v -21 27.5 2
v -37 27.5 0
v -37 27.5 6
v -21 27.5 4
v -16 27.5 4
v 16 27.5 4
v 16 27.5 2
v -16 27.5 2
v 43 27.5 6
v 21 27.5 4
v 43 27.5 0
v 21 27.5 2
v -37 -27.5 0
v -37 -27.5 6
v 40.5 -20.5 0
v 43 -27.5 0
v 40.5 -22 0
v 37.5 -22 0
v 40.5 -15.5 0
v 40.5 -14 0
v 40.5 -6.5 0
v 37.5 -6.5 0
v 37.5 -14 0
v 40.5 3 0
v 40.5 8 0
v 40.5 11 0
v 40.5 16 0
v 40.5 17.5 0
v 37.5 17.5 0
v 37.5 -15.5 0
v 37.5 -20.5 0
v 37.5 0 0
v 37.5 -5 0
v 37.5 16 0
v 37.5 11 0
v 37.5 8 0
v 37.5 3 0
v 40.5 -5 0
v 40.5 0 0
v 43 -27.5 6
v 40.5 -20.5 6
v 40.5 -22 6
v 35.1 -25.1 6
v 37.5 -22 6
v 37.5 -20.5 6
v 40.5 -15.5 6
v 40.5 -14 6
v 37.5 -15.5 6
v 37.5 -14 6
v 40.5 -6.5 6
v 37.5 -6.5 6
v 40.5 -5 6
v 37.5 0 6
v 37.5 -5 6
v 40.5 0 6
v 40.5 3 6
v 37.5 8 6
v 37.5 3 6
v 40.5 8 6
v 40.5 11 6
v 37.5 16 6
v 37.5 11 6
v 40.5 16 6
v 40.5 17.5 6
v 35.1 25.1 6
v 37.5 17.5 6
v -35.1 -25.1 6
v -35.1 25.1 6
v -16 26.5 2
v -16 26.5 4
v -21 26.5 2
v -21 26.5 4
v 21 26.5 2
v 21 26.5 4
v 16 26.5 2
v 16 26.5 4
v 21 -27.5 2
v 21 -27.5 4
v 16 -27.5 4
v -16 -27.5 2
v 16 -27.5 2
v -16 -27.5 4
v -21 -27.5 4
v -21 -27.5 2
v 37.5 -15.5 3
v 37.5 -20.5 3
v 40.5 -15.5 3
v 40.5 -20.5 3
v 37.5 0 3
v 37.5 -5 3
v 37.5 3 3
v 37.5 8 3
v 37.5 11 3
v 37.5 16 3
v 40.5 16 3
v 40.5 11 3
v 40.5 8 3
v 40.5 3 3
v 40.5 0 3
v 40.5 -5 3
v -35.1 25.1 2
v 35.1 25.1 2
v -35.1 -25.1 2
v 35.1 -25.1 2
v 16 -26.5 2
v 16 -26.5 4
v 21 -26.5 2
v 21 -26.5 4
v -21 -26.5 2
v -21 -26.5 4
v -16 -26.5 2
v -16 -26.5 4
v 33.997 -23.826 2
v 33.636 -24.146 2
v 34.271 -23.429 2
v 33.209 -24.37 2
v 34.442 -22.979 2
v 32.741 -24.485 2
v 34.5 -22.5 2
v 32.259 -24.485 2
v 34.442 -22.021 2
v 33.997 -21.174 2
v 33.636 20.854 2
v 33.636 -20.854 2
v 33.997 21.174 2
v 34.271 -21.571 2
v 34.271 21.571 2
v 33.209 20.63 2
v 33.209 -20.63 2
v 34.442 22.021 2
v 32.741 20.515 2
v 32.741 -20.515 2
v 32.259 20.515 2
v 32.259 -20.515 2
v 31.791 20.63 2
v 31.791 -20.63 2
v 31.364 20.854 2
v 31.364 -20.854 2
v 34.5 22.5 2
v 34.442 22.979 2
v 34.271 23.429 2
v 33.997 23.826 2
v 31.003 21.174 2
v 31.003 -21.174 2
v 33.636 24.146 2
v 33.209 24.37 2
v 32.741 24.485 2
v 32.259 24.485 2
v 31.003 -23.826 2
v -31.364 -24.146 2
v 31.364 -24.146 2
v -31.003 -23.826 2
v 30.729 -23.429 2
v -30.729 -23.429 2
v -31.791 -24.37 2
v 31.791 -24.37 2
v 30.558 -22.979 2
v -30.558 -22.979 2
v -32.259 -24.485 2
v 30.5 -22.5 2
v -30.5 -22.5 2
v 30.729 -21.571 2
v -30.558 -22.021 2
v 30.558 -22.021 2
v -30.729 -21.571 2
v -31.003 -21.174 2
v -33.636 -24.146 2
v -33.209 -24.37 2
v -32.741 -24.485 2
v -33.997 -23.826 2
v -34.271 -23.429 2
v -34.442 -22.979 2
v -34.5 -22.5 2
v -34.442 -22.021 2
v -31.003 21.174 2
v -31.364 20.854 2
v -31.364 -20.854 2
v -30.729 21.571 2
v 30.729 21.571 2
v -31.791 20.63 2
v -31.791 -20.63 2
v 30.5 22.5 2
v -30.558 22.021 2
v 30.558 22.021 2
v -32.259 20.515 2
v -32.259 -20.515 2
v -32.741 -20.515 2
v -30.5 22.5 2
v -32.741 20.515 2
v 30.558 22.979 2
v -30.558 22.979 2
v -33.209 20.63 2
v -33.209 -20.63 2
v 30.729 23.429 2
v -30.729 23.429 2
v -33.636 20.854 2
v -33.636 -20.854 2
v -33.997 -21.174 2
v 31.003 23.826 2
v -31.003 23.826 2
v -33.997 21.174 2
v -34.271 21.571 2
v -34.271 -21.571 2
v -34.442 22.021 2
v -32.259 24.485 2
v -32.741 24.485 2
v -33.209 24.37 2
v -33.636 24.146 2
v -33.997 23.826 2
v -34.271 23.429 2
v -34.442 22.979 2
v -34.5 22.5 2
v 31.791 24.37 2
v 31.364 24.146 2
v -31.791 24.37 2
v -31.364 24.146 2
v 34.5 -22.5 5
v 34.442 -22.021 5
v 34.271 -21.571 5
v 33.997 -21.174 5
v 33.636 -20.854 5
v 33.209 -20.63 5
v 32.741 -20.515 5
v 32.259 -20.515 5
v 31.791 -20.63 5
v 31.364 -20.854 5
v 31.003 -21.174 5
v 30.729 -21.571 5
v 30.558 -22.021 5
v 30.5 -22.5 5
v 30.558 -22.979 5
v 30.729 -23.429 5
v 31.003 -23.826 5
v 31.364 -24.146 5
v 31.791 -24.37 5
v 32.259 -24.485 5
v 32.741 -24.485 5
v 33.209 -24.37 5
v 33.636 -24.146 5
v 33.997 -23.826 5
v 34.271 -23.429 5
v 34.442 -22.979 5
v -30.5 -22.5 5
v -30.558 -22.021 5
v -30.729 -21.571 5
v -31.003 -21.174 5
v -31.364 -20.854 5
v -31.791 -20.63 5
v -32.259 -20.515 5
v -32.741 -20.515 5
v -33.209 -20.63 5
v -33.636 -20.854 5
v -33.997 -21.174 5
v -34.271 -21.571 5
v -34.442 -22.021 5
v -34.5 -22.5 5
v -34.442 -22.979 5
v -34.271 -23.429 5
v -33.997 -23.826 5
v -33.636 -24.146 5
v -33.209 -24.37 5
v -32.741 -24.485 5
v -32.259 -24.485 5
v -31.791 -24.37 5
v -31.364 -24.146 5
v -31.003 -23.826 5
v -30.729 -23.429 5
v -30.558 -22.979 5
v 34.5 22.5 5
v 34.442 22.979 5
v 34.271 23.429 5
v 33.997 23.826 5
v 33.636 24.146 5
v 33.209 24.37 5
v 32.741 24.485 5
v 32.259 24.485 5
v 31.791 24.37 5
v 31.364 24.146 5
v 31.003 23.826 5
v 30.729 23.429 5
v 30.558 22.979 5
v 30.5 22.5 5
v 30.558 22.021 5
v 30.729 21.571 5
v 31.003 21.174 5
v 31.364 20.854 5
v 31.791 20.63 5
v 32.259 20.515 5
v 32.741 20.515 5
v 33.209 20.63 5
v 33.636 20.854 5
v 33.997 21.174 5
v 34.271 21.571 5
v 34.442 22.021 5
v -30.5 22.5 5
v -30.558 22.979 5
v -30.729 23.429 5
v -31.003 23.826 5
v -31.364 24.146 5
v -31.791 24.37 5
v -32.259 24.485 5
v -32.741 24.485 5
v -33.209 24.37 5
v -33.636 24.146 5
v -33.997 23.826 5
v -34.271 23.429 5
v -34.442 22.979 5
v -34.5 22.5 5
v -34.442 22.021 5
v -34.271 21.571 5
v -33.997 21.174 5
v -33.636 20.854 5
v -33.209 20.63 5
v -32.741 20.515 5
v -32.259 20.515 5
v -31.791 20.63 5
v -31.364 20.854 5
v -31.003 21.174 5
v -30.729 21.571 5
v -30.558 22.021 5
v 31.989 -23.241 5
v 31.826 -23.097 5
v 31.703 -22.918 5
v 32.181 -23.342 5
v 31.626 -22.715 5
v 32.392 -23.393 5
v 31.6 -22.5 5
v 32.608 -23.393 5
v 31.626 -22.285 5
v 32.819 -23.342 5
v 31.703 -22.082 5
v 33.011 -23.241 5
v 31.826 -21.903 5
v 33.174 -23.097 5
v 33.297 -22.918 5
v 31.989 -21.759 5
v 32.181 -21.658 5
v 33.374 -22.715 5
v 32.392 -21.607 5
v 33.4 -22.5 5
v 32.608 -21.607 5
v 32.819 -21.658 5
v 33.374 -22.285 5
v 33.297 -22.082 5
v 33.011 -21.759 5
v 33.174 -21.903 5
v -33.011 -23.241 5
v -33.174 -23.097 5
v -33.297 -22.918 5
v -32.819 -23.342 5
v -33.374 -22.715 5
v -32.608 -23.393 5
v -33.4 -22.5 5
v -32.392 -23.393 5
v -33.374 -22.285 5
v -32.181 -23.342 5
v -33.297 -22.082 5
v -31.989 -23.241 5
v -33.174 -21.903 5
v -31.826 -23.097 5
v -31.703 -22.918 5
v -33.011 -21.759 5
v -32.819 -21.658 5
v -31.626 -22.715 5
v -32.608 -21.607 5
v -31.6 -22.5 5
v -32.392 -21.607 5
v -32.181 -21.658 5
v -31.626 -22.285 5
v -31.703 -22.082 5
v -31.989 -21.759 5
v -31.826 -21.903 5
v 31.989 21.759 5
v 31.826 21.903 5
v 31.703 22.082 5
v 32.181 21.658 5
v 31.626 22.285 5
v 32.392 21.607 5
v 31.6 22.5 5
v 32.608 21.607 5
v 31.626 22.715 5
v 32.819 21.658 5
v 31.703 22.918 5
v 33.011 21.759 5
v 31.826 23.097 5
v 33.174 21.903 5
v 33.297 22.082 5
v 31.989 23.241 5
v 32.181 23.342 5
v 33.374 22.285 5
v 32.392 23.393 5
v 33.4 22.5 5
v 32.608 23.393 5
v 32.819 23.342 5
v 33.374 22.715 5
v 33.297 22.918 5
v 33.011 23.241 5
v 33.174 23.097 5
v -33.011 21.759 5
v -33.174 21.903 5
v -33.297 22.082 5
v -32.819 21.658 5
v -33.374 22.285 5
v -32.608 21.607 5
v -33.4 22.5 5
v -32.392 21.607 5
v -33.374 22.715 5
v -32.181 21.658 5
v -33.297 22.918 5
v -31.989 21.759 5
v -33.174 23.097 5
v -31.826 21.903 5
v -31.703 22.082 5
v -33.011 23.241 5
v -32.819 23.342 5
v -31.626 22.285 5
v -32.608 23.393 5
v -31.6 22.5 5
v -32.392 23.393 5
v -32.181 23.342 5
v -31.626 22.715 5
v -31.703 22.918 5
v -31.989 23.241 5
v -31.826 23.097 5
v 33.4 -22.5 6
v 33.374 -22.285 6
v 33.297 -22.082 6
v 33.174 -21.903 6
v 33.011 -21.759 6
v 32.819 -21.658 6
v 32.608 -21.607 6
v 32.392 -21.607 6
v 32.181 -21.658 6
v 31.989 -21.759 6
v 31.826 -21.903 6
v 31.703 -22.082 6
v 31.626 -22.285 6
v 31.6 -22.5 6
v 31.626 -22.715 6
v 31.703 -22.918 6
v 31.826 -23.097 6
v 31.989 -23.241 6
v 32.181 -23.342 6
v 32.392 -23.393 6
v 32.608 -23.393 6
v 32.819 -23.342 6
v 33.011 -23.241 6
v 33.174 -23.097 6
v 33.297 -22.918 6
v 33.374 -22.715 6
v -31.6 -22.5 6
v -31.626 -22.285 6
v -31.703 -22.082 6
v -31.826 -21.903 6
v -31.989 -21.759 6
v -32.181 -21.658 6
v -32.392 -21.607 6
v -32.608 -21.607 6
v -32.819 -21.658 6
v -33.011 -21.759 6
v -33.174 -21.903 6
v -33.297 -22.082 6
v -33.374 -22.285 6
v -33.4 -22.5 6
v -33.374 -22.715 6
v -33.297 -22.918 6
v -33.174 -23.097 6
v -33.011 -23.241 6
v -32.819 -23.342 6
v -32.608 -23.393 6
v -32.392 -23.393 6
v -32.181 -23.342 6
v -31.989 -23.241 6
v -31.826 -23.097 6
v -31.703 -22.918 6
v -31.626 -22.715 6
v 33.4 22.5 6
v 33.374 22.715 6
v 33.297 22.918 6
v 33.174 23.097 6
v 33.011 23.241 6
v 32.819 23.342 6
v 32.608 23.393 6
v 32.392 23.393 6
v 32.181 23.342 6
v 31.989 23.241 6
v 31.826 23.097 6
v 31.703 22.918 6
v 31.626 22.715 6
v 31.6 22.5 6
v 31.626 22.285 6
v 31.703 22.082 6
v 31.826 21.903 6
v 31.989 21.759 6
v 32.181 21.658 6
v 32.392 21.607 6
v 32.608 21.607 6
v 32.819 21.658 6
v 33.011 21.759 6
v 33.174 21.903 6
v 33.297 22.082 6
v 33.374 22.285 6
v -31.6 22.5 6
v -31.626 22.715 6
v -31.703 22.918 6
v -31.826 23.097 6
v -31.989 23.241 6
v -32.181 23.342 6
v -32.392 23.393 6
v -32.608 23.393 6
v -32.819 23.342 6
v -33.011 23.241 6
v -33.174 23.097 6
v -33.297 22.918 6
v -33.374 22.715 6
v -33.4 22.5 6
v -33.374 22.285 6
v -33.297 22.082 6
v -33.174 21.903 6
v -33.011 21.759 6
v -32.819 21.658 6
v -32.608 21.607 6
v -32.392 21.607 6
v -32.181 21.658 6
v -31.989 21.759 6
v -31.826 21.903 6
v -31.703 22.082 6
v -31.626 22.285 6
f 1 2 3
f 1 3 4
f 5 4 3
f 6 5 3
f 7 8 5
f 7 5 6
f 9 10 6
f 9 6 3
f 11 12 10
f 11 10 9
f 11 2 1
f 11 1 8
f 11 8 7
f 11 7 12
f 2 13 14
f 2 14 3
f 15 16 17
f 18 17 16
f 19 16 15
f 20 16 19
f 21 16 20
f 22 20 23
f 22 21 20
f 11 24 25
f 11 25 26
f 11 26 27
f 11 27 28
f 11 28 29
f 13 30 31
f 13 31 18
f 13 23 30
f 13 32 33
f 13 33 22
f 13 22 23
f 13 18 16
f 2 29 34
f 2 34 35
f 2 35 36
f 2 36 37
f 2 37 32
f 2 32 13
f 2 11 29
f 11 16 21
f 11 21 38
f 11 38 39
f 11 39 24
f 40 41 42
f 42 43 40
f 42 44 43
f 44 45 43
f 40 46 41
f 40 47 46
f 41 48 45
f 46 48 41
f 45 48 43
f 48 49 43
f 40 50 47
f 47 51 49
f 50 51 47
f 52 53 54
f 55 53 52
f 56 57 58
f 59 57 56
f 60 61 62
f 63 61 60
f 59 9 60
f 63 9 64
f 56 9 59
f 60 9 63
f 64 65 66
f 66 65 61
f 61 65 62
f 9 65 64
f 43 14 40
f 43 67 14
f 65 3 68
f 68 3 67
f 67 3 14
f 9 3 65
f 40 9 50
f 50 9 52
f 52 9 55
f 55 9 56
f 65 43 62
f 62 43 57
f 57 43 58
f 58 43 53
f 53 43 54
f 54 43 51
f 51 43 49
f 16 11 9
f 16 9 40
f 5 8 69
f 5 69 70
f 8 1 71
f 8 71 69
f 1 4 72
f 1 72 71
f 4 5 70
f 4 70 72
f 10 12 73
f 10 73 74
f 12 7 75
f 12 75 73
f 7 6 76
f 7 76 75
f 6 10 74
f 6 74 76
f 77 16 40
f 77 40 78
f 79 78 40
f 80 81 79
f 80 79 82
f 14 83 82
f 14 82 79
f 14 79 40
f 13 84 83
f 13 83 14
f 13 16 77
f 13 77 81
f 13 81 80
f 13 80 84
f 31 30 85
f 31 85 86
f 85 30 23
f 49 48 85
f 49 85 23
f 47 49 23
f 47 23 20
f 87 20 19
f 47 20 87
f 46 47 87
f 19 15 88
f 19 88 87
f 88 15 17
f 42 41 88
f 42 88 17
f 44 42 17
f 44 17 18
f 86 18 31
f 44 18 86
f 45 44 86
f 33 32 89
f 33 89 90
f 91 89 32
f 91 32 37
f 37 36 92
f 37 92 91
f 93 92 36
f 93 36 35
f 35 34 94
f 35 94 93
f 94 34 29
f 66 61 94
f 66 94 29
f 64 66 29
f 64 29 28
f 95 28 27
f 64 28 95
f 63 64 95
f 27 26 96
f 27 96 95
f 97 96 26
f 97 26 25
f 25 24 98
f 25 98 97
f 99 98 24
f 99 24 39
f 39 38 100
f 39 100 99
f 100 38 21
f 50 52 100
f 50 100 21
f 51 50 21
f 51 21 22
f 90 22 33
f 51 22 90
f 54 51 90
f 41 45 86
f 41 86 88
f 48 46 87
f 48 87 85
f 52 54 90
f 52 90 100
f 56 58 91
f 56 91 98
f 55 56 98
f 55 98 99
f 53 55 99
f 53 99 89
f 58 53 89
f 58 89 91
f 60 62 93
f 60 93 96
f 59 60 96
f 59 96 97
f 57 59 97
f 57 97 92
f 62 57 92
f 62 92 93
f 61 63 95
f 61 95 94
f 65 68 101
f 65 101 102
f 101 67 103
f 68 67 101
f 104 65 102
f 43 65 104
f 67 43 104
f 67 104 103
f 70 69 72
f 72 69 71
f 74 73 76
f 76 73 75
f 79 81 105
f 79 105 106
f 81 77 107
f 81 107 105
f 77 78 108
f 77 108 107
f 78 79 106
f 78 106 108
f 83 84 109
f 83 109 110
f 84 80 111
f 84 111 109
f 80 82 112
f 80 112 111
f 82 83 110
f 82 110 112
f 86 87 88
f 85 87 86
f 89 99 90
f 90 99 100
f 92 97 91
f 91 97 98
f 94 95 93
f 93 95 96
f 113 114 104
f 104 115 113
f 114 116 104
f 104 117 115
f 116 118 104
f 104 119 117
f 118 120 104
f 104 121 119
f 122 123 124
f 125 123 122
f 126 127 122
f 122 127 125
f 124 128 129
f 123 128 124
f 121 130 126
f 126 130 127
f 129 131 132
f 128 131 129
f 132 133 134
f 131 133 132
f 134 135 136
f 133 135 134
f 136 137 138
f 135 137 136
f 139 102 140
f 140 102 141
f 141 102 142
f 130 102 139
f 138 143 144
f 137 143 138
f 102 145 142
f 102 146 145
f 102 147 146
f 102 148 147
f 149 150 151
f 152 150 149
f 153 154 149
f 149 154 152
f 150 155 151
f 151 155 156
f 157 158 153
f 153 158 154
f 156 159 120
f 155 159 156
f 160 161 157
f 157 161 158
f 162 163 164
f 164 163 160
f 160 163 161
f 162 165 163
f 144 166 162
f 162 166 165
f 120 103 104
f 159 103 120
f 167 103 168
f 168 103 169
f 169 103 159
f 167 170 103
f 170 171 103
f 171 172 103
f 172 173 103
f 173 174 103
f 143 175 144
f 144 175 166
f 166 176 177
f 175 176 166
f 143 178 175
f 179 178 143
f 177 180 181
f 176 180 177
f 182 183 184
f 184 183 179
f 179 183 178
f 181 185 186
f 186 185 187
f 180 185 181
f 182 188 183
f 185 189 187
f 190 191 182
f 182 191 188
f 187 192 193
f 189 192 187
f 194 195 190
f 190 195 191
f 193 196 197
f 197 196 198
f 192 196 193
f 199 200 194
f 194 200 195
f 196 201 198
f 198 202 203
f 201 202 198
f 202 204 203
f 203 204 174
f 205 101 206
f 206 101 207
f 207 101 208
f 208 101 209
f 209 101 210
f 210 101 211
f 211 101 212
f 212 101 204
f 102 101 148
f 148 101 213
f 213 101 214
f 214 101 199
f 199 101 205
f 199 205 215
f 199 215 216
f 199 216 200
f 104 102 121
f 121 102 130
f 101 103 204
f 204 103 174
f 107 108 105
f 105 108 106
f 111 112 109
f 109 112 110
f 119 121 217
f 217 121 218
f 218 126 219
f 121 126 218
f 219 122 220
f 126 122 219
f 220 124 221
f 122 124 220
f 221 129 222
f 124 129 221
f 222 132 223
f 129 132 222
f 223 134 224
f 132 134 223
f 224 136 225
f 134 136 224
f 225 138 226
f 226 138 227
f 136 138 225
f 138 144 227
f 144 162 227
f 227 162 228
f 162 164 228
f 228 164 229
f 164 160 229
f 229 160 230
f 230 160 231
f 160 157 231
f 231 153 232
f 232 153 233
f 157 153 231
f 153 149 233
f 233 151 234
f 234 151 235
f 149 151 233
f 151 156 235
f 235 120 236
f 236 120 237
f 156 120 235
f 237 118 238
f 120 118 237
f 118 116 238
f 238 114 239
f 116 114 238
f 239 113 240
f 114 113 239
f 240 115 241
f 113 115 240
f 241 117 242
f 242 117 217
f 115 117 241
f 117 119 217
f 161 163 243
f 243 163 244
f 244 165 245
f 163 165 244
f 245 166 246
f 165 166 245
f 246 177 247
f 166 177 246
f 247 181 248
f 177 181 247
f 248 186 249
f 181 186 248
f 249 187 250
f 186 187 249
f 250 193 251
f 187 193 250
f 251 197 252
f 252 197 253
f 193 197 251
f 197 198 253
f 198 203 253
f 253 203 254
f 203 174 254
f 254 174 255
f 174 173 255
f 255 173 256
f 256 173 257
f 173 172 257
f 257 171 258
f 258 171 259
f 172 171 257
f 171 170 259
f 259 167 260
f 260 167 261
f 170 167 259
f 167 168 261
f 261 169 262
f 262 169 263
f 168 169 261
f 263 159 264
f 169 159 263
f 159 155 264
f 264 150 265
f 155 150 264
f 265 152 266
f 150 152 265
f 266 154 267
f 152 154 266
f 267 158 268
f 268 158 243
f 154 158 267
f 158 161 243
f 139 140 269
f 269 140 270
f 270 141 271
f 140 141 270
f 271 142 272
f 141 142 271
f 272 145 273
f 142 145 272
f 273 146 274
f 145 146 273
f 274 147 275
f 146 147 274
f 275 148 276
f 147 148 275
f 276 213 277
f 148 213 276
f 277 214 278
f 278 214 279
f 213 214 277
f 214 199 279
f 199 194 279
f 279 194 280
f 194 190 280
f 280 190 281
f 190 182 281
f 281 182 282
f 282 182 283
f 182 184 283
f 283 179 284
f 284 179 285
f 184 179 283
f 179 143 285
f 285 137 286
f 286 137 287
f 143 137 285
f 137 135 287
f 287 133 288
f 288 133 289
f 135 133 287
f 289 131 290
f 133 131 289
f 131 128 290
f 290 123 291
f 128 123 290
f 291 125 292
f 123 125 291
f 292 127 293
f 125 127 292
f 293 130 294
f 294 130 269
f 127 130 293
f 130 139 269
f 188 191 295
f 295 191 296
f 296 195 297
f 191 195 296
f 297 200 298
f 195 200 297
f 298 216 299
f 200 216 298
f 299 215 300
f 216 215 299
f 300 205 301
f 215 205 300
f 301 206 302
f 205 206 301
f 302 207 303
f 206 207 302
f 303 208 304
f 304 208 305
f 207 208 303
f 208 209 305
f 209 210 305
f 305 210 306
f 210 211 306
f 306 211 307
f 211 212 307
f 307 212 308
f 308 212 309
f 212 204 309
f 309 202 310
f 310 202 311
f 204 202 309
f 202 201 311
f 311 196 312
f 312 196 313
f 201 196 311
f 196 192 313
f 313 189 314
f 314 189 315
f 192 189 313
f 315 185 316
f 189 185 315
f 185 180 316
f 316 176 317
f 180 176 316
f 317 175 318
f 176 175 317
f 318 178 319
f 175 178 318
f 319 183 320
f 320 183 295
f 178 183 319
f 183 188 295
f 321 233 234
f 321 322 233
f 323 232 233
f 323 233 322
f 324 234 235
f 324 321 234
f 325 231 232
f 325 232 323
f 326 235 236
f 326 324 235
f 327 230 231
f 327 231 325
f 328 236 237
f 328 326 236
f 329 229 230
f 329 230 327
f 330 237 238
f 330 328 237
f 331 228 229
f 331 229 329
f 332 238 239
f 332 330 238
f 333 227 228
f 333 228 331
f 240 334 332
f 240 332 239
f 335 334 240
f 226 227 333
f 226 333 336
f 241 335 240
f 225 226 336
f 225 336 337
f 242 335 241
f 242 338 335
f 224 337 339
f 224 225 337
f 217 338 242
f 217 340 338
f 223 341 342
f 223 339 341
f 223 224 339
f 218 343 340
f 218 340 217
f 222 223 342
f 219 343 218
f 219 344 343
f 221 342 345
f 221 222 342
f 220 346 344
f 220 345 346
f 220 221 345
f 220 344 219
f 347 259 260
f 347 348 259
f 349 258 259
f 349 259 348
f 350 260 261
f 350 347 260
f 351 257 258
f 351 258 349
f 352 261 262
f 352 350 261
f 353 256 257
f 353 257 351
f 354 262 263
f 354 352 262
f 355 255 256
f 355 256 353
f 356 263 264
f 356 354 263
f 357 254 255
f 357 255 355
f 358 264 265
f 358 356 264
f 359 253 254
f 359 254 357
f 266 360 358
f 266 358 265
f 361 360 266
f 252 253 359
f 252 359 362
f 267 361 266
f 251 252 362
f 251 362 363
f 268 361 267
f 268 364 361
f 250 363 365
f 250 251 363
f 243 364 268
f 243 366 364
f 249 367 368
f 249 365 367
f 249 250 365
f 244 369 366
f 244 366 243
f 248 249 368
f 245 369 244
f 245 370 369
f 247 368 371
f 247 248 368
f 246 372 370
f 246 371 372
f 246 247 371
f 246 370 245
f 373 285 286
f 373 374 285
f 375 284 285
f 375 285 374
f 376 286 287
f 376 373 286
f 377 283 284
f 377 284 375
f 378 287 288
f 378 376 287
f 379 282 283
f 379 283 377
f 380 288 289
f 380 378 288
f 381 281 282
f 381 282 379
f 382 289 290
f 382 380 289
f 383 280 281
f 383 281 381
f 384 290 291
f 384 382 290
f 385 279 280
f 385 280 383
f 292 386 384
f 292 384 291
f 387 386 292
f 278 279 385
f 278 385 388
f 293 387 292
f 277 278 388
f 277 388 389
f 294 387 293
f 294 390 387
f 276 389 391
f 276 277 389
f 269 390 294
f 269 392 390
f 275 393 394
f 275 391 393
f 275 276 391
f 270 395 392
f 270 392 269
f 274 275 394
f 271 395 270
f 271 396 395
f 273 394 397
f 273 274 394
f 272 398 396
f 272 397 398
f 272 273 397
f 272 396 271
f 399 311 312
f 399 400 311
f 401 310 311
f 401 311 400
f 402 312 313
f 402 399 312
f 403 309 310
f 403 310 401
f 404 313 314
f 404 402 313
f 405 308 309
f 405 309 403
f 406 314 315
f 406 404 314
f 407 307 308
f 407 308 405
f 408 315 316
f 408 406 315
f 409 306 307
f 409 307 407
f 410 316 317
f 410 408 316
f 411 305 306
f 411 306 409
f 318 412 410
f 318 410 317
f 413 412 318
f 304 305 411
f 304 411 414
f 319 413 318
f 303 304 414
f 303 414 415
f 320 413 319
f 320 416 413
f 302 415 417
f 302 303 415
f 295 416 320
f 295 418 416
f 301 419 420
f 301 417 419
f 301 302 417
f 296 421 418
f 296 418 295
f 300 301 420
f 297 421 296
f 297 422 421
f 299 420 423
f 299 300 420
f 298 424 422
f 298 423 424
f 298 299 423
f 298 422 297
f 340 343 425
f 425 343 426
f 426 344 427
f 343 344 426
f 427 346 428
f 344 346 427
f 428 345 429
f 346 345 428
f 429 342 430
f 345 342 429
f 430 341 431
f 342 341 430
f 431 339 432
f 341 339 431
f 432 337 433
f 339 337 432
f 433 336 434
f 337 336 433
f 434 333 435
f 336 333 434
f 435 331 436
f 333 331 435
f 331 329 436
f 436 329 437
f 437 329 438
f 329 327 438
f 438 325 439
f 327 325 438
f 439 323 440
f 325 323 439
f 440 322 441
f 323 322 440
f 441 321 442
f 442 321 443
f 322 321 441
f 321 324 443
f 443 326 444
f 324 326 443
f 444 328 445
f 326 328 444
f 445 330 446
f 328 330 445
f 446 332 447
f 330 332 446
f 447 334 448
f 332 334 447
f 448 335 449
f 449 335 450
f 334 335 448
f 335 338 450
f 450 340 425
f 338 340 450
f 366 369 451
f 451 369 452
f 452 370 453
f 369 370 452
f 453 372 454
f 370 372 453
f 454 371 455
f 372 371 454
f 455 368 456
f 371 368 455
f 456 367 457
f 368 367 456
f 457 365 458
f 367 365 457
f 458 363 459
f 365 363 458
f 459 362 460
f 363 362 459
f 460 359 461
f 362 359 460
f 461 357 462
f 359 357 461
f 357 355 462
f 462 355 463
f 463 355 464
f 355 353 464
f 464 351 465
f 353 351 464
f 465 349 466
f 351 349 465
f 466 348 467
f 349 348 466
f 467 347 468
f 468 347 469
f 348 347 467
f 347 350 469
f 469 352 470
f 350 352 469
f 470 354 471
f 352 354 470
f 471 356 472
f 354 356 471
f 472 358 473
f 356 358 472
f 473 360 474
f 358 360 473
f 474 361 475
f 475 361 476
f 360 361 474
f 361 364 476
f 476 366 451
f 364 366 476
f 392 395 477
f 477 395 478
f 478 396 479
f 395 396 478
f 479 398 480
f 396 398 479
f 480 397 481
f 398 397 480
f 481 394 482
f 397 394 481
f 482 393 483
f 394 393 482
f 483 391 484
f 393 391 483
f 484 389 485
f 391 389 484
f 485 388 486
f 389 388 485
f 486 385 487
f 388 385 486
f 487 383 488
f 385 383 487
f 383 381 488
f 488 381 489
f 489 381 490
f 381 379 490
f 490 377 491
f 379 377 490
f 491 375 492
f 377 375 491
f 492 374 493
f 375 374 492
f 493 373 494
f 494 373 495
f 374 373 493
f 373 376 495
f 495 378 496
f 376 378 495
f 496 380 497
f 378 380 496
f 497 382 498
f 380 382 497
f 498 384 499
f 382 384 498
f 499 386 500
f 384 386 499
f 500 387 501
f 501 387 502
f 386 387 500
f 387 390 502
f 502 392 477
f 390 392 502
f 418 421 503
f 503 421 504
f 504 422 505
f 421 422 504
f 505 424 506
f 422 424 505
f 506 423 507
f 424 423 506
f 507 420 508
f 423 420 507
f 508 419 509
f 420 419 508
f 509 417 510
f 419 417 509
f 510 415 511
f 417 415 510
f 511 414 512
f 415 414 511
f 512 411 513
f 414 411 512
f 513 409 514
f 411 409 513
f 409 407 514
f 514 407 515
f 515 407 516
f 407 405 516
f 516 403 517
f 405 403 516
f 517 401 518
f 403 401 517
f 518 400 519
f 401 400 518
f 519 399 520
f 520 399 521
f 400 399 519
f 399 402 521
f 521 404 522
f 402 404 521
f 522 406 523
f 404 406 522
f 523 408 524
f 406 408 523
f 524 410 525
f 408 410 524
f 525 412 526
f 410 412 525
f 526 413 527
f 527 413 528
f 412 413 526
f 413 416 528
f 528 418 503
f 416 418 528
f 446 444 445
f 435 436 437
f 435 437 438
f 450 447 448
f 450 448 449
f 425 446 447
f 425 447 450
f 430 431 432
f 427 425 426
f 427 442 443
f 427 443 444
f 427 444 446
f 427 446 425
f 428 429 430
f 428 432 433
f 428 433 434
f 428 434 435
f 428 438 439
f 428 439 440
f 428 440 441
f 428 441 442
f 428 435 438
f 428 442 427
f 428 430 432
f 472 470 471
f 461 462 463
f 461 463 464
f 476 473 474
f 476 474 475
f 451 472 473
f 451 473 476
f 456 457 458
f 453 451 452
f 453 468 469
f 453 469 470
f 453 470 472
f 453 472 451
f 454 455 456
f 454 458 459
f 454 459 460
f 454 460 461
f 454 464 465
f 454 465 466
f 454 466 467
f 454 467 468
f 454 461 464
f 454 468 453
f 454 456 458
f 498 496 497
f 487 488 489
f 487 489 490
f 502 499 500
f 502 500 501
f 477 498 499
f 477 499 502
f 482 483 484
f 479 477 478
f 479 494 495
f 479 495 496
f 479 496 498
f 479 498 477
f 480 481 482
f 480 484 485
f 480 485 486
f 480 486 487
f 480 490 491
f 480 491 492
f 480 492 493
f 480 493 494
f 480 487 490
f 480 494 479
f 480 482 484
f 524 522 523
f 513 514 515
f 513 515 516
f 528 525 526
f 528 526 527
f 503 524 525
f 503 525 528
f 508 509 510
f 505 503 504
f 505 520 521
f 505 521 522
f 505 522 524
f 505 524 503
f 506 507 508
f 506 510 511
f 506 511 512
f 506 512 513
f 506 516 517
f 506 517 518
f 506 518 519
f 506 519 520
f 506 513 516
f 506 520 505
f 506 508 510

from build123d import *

# Parameters (mm, degrees)
SKETCH_W        = 80
SKETCH_H        = 55
PAD_DEPTH       = 6
SKETCH001_W     = 70.2
SKETCH001_H     = 50.2
POCKET_DEPTH    = 4
SKETCH002_R     = 2
PAD001_DEPTH    = 3
SKETCH003_R     = 0.9
PAD002_DEPTH    = 1
SKETCH004_W     = 3
SKETCH004_H     = 1.5
SKETCH004_H_2   = 3
POCKET001_DEPTH = 6
SKETCH005_W     = 3
SKETCH005_H     = 5
SKETCH005_H_2   = 21
POCKET002_DEPTH = 3
SKETCH006_W     = 5
SKETCH006_H     = 2
POCKET003_DEPTH = 1
SKETCH007_W     = 5
SKETCH007_H     = 2
POCKET004_DEPTH = 1


with BuildPart() as part:
    # Sketch → Pad (new body)
    with BuildSketch(Plane.XY):
        with Locations((3, 0)):
            Rectangle(SKETCH_W, SKETCH_H)
    extrude(amount=PAD_DEPTH)

    # Sketch001 (on Face6 of Pad) → Pocket (cut)
    with BuildSketch(Plane.XY.offset(6)):
        Rectangle(SKETCH001_W, SKETCH001_H)
    extrude(amount=-POCKET_DEPTH, mode=Mode.SUBTRACT)

    # Sketch002 (on Face11 of Pocket) → Pad001 (join)
    with BuildSketch(Plane.XY.offset(2)):
        with Locations((-32.5, 22.5)):
            Circle(SKETCH002_R)
        with Locations((32.5, 22.5)):
            Circle(SKETCH002_R)
        with Locations((-32.5, -22.5)):
            Circle(SKETCH002_R)
        with Locations((32.5, -22.5)):
            Circle(SKETCH002_R)
    extrude(amount=PAD001_DEPTH)

    # Sketch003 (on Face19 of Pad001) → Pad002 (join)
    with BuildSketch(Plane.XY.offset(5)):
        with Locations((-32.5, 22.5)):
            Circle(SKETCH003_R)
        with Locations((32.5, 22.5)):
            Circle(SKETCH003_R)
        with Locations((-32.5, -22.5)):
            Circle(SKETCH003_R)
        with Locations((32.5, -22.5)):
            Circle(SKETCH003_R)
    extrude(amount=PAD002_DEPTH)

    # Sketch004 (on Face5 of Pad002) → Pocket001 (cut)
    with BuildSketch(Plane.XY.offset(6)):
        with Locations((39, 16.75)):
            Rectangle(SKETCH004_W, SKETCH004_H)
        with Locations((39, 9.5)):
            Rectangle(SKETCH004_W, SKETCH004_H_2)
        with Locations((39, 1.5)):
            Rectangle(SKETCH004_W, SKETCH004_H_2)
        with Locations((39, -5.75)):
            Rectangle(SKETCH004_W, SKETCH004_H)
        with Locations((39, -14.75)):
            Rectangle(SKETCH004_W, SKETCH004_H)
        with Locations((39, -21.25)):
            Rectangle(SKETCH004_W, SKETCH004_H)
    extrude(amount=-POCKET001_DEPTH, mode=Mode.SUBTRACT)

    # Sketch005 (on Face4 of Pocket001) → Pocket002 (cut)
    with BuildSketch(Plane(origin=(0, 0, 0), x_dir=(1, 0, 0), z_dir=(0, 0, -1))):
        with Locations((39, 18)):
            Rectangle(SKETCH005_W, SKETCH005_H)
        with Locations((39, -5.5)):
            Rectangle(SKETCH005_W, SKETCH005_H_2)
    extrude(amount=-POCKET002_DEPTH, mode=Mode.SUBTRACT)

    # Sketch006 (on Face6 of Pocket002) → Pocket003 (cut)
    with BuildSketch(Plane.XZ.offset(27.5)):
        with Locations((-18.5, 3)):
            Rectangle(SKETCH006_W, SKETCH006_H)
        with Locations((18.5, 3)):
            Rectangle(SKETCH006_W, SKETCH006_H)
    extrude(amount=-POCKET003_DEPTH, mode=Mode.SUBTRACT)

    # Sketch007 (on Face1 of Pocket003) → Pocket004 (cut)
    with BuildSketch(Plane(origin=(0, 27.5, 0), x_dir=(-1, 0, 0), z_dir=(0, 1, 0))):
        with Locations((-18.5, 3)):
            Rectangle(SKETCH007_W, SKETCH007_H)
        with Locations((18.5, 3)):
            Rectangle(SKETCH007_W, SKETCH007_H)
    extrude(amount=-POCKET004_DEPTH, mode=Mode.SUBTRACT)


solid = part.part
